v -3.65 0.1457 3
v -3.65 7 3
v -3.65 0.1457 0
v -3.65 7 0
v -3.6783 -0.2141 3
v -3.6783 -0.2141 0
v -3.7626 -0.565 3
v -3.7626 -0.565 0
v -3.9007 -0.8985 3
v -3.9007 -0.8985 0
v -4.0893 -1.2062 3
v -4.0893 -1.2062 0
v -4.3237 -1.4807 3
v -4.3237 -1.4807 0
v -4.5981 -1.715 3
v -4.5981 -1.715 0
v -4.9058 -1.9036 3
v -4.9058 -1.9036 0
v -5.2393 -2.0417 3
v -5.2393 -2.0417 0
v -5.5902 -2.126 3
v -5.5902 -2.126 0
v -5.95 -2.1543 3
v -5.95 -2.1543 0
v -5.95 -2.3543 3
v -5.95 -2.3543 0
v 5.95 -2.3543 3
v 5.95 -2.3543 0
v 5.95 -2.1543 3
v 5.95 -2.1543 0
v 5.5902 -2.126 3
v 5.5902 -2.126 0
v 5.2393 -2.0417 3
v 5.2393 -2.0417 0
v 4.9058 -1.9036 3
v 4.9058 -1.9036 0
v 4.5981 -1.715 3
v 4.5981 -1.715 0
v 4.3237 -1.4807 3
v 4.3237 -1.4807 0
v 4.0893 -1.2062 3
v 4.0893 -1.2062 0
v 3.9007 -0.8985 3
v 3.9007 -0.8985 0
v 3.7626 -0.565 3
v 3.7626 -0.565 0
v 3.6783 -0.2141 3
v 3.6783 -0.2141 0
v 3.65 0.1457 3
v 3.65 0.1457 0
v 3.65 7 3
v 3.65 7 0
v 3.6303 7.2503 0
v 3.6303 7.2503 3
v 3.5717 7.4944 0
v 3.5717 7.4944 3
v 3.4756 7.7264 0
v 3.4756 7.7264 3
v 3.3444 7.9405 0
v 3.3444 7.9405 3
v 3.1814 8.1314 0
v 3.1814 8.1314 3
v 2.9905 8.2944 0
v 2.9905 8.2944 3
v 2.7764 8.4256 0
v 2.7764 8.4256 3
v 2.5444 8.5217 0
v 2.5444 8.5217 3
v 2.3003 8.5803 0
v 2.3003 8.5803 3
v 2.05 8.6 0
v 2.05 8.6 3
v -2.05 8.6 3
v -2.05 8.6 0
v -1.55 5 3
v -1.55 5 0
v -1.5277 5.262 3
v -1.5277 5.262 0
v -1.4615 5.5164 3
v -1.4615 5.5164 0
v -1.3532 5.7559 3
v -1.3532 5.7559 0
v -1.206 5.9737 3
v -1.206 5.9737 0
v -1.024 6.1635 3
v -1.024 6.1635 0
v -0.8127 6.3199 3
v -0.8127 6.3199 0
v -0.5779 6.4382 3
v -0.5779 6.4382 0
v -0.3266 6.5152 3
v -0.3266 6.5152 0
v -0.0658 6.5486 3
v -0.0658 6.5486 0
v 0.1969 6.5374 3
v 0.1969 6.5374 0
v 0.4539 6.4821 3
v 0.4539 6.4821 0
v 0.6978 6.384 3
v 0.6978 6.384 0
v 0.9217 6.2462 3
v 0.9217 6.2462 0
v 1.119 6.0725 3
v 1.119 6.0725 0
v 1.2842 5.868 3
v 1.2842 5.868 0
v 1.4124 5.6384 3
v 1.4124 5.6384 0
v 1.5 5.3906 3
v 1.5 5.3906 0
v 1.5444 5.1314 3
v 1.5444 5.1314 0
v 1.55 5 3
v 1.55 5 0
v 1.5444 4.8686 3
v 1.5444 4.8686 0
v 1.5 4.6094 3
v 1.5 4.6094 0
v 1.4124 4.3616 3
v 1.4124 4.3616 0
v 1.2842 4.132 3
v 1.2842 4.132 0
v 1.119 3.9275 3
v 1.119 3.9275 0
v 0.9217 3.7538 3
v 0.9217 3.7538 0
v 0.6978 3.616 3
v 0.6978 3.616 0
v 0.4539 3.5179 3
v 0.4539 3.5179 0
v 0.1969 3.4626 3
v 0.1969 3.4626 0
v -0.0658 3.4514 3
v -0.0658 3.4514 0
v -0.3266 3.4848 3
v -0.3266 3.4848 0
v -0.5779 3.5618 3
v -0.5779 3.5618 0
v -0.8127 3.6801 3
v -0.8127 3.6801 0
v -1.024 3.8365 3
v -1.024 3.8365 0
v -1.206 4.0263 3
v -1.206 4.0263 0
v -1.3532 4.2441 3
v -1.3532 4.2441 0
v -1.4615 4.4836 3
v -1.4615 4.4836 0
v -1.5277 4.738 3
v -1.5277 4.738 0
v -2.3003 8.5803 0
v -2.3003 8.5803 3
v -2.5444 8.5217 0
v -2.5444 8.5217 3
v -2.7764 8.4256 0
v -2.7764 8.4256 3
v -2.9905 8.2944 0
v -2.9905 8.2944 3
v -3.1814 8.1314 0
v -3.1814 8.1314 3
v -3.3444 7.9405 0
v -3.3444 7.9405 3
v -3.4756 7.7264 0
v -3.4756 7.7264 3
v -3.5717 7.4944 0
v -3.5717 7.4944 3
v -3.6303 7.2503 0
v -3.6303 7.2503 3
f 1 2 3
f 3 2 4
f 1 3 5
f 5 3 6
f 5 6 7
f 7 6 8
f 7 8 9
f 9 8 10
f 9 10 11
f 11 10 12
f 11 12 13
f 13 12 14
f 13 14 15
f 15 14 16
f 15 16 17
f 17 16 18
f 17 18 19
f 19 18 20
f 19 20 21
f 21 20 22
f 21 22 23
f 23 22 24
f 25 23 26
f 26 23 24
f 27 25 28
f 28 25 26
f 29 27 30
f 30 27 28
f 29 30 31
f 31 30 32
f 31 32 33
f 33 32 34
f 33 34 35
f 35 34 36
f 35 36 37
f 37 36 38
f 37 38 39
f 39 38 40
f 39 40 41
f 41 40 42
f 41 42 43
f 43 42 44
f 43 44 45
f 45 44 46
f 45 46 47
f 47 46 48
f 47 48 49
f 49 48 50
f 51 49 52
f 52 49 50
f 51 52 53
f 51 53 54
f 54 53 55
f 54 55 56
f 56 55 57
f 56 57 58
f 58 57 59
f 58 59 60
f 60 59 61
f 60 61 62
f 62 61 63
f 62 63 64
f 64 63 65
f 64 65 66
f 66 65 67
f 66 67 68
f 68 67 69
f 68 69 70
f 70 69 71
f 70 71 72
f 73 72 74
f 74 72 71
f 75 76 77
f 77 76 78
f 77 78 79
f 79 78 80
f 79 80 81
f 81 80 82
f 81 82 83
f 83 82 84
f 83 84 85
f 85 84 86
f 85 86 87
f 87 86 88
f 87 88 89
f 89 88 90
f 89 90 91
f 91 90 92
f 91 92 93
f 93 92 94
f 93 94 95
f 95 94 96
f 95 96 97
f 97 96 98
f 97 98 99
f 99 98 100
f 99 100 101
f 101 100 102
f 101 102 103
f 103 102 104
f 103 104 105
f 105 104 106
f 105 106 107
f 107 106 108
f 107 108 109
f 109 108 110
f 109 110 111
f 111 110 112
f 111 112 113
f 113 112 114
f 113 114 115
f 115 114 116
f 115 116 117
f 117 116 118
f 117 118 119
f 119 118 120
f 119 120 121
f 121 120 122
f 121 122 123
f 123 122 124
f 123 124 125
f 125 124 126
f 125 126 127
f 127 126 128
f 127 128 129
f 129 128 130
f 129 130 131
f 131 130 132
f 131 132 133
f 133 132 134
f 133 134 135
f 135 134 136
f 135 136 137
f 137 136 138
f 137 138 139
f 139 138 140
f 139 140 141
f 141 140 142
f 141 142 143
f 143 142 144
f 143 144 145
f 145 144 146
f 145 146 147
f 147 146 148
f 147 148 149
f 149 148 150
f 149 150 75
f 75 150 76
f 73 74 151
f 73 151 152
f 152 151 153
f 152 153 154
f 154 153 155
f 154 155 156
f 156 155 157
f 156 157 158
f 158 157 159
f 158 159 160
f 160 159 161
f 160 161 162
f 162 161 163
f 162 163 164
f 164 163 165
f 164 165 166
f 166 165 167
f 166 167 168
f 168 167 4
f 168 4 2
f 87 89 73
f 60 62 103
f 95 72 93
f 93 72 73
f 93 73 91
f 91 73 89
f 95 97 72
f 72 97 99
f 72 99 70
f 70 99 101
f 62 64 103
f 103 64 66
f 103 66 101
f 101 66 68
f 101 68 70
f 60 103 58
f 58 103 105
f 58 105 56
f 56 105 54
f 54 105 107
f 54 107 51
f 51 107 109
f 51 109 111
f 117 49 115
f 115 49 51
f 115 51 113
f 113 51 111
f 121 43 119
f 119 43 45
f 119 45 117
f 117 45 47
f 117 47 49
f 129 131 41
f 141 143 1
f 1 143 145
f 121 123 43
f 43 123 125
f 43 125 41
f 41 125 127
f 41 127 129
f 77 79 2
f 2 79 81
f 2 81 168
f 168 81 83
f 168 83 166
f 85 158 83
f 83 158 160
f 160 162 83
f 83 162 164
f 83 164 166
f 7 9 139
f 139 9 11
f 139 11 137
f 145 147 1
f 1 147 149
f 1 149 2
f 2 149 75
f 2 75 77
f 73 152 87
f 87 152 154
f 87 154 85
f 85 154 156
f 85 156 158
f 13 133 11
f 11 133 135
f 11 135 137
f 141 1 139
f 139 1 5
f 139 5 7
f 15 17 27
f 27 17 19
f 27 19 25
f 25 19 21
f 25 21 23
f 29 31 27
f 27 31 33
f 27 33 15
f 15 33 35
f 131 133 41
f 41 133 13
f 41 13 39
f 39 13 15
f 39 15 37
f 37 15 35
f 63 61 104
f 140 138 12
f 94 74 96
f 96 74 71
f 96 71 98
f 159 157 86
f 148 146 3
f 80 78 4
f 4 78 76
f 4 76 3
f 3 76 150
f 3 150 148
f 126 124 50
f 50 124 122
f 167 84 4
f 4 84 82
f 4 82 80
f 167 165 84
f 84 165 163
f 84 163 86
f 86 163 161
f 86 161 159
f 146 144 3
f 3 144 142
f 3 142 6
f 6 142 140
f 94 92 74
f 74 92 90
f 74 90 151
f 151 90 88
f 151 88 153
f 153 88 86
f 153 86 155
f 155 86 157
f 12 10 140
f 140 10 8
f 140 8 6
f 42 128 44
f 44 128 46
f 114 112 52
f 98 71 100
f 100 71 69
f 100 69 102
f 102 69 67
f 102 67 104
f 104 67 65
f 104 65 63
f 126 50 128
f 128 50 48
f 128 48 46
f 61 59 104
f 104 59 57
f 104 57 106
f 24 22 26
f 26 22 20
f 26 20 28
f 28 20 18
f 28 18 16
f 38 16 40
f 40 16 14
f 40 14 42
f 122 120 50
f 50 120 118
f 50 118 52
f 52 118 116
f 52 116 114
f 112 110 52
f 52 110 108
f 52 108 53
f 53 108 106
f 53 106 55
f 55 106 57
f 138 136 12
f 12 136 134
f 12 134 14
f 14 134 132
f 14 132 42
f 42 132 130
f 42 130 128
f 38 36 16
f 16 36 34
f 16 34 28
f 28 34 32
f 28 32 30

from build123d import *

# Parameters (mm, degrees)
SKETCH1_R           = 1.55
BOSS_EXTRUDE1_DEPTH = 3


with BuildPart() as part:
    # Sketch1 → Boss-Extrude1 (new body)
    with BuildSketch(Plane.XY):
        with BuildLine():
            Line((-5.95, -2.354308425), (-3.45, -2.354308425))
            Line((-3.45, -2.354308425), (3.45, -2.354308425))
            Line((3.45, -2.354308425), (5.95, -2.354308425))
            Line((5.95, -2.354308425), (5.95, -2.154308425))
            ThreePointArc((5.95, -2.154308425), (4.323654403, -1.480654022), (3.65, 0.145691575))
            Line((3.65, 0.145691575), (3.65, 3))
            Line((3.65, 3), (3.65, 7))
            ThreePointArc((3.65, 7), (3.18137085, 8.13137085), (2.05, 8.6))
            Line((2.05, 8.6), (-2.05, 8.6))
            ThreePointArc((-2.05, 8.6), (-3.18137085, 8.13137085), (-3.65, 7))
            Line((-3.65, 7), (-3.65, 3))
            Line((-3.65, 3), (-3.65, 0.145691575))
            ThreePointArc((-3.65, 0.145691575), (-4.323654403, -1.480654022), (-5.95, -2.154308425))
            Line((-5.95, -2.154308425), (-5.95, -2.354308425))
        make_face()
        with Locations((0, 5)):
            Circle(SKETCH1_R, mode=Mode.SUBTRACT)
    extrude(amount=BOSS_EXTRUDE1_DEPTH)


solid = part.part
